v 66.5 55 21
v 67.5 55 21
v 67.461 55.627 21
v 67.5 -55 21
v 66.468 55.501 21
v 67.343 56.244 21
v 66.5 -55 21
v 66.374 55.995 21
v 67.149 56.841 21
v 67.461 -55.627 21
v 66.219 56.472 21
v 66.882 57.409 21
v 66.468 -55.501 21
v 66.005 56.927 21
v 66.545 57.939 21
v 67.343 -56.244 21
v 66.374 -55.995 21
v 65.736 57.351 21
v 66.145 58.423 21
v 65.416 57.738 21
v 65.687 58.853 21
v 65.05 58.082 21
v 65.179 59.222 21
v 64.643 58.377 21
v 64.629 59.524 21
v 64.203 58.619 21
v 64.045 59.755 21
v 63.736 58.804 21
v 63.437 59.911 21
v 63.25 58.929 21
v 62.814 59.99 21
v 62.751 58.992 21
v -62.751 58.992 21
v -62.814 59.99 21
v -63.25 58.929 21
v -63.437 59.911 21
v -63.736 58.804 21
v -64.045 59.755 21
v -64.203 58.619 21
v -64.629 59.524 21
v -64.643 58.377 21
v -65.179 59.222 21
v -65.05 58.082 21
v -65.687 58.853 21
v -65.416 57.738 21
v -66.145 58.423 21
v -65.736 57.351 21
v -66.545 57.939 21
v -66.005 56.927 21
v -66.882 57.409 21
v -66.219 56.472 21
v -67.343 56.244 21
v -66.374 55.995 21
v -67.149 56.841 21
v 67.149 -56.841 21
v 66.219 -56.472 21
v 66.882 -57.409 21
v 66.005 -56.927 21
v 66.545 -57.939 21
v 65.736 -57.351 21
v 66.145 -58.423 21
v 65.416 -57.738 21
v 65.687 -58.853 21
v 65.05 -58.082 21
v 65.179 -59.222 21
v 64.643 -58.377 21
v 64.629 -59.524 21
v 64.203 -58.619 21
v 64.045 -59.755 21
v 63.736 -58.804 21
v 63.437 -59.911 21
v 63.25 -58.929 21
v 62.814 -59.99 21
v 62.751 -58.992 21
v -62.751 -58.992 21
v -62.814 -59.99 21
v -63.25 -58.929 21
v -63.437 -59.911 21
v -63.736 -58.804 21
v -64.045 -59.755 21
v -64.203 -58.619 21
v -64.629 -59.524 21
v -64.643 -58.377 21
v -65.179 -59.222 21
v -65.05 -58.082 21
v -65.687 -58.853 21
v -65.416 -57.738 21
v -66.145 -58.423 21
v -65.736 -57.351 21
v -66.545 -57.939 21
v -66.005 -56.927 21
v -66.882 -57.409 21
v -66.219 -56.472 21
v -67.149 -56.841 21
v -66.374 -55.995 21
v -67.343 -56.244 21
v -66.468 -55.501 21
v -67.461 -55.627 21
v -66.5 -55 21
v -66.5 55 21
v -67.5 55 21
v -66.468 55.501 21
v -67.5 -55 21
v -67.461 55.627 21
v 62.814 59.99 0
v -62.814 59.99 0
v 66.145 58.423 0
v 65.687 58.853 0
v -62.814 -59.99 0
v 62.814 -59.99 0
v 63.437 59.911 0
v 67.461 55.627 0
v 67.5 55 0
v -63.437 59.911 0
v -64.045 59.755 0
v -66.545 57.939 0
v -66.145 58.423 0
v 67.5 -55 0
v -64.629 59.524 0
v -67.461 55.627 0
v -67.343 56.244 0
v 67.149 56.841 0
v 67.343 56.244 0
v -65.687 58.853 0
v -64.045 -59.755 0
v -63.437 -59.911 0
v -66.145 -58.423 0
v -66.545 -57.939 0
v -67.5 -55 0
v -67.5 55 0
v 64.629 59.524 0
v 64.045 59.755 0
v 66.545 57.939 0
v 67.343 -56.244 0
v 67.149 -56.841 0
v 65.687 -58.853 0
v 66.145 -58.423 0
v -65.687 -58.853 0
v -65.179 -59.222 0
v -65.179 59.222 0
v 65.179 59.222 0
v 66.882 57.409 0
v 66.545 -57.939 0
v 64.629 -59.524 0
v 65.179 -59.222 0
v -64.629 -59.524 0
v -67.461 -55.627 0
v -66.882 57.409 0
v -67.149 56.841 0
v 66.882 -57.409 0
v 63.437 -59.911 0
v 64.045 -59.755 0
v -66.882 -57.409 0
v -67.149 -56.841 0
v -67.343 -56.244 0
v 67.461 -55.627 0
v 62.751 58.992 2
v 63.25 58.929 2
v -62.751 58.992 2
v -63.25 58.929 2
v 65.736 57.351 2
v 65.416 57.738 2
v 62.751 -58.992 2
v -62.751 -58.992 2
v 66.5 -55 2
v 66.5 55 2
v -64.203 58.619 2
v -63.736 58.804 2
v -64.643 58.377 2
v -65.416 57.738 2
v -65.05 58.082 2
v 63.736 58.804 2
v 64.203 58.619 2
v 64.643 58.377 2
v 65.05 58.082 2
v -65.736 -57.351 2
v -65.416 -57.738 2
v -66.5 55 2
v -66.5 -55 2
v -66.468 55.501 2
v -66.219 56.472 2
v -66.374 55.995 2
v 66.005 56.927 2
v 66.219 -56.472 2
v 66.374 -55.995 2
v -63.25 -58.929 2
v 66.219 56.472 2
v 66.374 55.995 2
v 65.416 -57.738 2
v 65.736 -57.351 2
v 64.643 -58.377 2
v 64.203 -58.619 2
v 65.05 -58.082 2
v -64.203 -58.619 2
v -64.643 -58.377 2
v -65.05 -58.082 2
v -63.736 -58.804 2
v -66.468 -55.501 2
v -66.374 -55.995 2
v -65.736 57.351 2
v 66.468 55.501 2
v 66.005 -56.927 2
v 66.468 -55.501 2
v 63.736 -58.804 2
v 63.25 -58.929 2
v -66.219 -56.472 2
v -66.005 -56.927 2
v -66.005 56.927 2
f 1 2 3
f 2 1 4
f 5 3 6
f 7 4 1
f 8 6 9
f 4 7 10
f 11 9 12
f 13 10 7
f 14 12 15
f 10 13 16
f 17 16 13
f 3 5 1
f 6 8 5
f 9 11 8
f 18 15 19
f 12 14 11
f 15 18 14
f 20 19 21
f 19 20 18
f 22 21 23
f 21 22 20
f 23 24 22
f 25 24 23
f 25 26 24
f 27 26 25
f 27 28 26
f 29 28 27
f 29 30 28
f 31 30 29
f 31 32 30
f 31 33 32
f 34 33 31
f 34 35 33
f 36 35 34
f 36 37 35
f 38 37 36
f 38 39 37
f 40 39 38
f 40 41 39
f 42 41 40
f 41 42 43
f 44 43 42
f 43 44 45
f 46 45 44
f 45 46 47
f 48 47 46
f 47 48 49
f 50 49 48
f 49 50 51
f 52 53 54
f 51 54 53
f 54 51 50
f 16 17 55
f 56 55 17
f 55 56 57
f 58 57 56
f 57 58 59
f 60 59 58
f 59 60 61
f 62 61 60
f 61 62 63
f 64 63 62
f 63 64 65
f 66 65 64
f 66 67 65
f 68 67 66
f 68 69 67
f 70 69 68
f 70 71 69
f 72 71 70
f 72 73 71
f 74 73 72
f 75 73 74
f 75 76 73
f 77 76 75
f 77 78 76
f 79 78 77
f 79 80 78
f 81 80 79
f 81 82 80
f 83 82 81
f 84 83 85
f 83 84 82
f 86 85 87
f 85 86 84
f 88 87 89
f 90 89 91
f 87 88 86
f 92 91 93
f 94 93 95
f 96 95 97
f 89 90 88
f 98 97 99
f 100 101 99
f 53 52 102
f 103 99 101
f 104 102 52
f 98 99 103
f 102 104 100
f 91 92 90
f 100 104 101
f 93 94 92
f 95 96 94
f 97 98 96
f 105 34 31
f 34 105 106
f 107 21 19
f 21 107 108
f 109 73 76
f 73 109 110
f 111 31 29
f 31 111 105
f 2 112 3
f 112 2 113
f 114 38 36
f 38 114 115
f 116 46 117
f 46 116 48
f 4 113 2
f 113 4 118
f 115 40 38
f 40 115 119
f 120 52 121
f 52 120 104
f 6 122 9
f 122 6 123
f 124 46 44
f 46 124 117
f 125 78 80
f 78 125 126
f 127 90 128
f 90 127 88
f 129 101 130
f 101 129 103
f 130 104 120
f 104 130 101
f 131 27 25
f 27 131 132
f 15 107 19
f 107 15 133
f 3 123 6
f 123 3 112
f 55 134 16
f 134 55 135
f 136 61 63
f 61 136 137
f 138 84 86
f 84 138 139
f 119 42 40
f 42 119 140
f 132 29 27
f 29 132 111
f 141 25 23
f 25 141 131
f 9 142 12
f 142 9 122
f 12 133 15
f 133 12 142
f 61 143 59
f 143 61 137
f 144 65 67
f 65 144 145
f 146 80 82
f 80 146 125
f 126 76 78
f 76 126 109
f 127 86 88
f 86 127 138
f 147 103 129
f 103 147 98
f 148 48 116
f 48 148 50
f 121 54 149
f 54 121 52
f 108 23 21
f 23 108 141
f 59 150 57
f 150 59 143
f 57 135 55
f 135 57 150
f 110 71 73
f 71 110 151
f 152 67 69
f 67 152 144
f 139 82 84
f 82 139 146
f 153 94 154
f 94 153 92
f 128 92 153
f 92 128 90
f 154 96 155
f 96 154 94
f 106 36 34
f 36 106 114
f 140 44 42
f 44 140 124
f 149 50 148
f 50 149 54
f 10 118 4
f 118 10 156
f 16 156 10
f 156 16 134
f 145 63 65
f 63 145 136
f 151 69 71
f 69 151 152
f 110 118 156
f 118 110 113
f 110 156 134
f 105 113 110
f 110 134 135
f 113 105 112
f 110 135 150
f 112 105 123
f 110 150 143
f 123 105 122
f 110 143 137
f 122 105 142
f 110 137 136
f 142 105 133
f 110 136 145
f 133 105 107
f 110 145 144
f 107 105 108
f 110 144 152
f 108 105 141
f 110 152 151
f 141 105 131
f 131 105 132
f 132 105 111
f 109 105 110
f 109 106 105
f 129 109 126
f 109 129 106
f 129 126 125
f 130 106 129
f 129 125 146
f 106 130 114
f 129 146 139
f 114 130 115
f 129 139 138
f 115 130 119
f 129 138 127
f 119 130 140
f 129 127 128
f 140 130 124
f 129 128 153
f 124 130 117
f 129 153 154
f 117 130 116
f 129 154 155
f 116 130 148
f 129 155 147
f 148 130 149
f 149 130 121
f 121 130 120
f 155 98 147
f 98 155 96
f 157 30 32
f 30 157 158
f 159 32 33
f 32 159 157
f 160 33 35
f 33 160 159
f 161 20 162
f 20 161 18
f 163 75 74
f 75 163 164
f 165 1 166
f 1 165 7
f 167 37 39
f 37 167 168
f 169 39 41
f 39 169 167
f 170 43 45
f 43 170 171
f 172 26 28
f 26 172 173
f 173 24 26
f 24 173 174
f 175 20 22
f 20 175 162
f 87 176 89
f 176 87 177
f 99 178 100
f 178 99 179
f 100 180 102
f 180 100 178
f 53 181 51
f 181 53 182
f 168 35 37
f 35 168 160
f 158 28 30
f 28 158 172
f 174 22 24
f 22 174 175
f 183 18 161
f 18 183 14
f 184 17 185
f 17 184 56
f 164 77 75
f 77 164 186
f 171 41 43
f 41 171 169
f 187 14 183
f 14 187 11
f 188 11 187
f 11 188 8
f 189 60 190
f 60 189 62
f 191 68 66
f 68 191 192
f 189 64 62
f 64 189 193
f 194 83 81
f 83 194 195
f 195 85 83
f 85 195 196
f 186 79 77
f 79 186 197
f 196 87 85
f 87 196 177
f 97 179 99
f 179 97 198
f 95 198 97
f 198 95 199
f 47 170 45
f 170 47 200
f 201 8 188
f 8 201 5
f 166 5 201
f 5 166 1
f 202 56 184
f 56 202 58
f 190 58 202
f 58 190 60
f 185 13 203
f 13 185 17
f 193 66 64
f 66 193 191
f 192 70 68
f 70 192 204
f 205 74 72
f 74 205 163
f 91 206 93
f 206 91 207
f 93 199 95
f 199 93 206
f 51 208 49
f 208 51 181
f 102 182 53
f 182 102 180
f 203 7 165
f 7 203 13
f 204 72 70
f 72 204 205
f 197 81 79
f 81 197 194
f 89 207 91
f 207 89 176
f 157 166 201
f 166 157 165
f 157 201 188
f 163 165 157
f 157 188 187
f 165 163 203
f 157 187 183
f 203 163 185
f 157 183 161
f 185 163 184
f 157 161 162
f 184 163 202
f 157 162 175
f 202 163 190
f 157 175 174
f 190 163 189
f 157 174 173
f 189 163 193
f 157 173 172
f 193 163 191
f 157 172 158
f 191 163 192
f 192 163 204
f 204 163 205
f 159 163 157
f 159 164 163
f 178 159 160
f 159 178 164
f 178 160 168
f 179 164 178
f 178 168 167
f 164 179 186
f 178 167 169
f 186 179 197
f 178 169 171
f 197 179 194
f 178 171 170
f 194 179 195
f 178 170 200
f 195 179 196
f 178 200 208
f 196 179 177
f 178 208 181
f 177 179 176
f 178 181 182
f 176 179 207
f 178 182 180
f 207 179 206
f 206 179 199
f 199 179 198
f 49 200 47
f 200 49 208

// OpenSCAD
$fn = 50;


difference() {
	union() {
		hull() {
			translate(v = [-62.5000000000, 55.0000000000, 0]) {
				cylinder(h = 21, r = 5);
			}
			translate(v = [62.5000000000, 55.0000000000, 0]) {
				cylinder(h = 21, r = 5);
			}
			translate(v = [-62.5000000000, -55.0000000000, 0]) {
				cylinder(h = 21, r = 5);
			}
			translate(v = [62.5000000000, -55.0000000000, 0]) {
				cylinder(h = 21, r = 5);
			}
		}
	}
	union() {
		translate(v = [0, 0, 2]) {
			hull() {
				translate(v = [-62.5000000000, 55.0000000000, 0]) {
					cylinder(h = 19, r = 4);
				}
				translate(v = [62.5000000000, 55.0000000000, 0]) {
					cylinder(h = 19, r = 4);
				}
				translate(v = [-62.5000000000, -55.0000000000, 0]) {
					cylinder(h = 19, r = 4);
				}
				translate(v = [62.5000000000, -55.0000000000, 0]) {
					cylinder(h = 19, r = 4);
				}
			}
		}
	}
}
